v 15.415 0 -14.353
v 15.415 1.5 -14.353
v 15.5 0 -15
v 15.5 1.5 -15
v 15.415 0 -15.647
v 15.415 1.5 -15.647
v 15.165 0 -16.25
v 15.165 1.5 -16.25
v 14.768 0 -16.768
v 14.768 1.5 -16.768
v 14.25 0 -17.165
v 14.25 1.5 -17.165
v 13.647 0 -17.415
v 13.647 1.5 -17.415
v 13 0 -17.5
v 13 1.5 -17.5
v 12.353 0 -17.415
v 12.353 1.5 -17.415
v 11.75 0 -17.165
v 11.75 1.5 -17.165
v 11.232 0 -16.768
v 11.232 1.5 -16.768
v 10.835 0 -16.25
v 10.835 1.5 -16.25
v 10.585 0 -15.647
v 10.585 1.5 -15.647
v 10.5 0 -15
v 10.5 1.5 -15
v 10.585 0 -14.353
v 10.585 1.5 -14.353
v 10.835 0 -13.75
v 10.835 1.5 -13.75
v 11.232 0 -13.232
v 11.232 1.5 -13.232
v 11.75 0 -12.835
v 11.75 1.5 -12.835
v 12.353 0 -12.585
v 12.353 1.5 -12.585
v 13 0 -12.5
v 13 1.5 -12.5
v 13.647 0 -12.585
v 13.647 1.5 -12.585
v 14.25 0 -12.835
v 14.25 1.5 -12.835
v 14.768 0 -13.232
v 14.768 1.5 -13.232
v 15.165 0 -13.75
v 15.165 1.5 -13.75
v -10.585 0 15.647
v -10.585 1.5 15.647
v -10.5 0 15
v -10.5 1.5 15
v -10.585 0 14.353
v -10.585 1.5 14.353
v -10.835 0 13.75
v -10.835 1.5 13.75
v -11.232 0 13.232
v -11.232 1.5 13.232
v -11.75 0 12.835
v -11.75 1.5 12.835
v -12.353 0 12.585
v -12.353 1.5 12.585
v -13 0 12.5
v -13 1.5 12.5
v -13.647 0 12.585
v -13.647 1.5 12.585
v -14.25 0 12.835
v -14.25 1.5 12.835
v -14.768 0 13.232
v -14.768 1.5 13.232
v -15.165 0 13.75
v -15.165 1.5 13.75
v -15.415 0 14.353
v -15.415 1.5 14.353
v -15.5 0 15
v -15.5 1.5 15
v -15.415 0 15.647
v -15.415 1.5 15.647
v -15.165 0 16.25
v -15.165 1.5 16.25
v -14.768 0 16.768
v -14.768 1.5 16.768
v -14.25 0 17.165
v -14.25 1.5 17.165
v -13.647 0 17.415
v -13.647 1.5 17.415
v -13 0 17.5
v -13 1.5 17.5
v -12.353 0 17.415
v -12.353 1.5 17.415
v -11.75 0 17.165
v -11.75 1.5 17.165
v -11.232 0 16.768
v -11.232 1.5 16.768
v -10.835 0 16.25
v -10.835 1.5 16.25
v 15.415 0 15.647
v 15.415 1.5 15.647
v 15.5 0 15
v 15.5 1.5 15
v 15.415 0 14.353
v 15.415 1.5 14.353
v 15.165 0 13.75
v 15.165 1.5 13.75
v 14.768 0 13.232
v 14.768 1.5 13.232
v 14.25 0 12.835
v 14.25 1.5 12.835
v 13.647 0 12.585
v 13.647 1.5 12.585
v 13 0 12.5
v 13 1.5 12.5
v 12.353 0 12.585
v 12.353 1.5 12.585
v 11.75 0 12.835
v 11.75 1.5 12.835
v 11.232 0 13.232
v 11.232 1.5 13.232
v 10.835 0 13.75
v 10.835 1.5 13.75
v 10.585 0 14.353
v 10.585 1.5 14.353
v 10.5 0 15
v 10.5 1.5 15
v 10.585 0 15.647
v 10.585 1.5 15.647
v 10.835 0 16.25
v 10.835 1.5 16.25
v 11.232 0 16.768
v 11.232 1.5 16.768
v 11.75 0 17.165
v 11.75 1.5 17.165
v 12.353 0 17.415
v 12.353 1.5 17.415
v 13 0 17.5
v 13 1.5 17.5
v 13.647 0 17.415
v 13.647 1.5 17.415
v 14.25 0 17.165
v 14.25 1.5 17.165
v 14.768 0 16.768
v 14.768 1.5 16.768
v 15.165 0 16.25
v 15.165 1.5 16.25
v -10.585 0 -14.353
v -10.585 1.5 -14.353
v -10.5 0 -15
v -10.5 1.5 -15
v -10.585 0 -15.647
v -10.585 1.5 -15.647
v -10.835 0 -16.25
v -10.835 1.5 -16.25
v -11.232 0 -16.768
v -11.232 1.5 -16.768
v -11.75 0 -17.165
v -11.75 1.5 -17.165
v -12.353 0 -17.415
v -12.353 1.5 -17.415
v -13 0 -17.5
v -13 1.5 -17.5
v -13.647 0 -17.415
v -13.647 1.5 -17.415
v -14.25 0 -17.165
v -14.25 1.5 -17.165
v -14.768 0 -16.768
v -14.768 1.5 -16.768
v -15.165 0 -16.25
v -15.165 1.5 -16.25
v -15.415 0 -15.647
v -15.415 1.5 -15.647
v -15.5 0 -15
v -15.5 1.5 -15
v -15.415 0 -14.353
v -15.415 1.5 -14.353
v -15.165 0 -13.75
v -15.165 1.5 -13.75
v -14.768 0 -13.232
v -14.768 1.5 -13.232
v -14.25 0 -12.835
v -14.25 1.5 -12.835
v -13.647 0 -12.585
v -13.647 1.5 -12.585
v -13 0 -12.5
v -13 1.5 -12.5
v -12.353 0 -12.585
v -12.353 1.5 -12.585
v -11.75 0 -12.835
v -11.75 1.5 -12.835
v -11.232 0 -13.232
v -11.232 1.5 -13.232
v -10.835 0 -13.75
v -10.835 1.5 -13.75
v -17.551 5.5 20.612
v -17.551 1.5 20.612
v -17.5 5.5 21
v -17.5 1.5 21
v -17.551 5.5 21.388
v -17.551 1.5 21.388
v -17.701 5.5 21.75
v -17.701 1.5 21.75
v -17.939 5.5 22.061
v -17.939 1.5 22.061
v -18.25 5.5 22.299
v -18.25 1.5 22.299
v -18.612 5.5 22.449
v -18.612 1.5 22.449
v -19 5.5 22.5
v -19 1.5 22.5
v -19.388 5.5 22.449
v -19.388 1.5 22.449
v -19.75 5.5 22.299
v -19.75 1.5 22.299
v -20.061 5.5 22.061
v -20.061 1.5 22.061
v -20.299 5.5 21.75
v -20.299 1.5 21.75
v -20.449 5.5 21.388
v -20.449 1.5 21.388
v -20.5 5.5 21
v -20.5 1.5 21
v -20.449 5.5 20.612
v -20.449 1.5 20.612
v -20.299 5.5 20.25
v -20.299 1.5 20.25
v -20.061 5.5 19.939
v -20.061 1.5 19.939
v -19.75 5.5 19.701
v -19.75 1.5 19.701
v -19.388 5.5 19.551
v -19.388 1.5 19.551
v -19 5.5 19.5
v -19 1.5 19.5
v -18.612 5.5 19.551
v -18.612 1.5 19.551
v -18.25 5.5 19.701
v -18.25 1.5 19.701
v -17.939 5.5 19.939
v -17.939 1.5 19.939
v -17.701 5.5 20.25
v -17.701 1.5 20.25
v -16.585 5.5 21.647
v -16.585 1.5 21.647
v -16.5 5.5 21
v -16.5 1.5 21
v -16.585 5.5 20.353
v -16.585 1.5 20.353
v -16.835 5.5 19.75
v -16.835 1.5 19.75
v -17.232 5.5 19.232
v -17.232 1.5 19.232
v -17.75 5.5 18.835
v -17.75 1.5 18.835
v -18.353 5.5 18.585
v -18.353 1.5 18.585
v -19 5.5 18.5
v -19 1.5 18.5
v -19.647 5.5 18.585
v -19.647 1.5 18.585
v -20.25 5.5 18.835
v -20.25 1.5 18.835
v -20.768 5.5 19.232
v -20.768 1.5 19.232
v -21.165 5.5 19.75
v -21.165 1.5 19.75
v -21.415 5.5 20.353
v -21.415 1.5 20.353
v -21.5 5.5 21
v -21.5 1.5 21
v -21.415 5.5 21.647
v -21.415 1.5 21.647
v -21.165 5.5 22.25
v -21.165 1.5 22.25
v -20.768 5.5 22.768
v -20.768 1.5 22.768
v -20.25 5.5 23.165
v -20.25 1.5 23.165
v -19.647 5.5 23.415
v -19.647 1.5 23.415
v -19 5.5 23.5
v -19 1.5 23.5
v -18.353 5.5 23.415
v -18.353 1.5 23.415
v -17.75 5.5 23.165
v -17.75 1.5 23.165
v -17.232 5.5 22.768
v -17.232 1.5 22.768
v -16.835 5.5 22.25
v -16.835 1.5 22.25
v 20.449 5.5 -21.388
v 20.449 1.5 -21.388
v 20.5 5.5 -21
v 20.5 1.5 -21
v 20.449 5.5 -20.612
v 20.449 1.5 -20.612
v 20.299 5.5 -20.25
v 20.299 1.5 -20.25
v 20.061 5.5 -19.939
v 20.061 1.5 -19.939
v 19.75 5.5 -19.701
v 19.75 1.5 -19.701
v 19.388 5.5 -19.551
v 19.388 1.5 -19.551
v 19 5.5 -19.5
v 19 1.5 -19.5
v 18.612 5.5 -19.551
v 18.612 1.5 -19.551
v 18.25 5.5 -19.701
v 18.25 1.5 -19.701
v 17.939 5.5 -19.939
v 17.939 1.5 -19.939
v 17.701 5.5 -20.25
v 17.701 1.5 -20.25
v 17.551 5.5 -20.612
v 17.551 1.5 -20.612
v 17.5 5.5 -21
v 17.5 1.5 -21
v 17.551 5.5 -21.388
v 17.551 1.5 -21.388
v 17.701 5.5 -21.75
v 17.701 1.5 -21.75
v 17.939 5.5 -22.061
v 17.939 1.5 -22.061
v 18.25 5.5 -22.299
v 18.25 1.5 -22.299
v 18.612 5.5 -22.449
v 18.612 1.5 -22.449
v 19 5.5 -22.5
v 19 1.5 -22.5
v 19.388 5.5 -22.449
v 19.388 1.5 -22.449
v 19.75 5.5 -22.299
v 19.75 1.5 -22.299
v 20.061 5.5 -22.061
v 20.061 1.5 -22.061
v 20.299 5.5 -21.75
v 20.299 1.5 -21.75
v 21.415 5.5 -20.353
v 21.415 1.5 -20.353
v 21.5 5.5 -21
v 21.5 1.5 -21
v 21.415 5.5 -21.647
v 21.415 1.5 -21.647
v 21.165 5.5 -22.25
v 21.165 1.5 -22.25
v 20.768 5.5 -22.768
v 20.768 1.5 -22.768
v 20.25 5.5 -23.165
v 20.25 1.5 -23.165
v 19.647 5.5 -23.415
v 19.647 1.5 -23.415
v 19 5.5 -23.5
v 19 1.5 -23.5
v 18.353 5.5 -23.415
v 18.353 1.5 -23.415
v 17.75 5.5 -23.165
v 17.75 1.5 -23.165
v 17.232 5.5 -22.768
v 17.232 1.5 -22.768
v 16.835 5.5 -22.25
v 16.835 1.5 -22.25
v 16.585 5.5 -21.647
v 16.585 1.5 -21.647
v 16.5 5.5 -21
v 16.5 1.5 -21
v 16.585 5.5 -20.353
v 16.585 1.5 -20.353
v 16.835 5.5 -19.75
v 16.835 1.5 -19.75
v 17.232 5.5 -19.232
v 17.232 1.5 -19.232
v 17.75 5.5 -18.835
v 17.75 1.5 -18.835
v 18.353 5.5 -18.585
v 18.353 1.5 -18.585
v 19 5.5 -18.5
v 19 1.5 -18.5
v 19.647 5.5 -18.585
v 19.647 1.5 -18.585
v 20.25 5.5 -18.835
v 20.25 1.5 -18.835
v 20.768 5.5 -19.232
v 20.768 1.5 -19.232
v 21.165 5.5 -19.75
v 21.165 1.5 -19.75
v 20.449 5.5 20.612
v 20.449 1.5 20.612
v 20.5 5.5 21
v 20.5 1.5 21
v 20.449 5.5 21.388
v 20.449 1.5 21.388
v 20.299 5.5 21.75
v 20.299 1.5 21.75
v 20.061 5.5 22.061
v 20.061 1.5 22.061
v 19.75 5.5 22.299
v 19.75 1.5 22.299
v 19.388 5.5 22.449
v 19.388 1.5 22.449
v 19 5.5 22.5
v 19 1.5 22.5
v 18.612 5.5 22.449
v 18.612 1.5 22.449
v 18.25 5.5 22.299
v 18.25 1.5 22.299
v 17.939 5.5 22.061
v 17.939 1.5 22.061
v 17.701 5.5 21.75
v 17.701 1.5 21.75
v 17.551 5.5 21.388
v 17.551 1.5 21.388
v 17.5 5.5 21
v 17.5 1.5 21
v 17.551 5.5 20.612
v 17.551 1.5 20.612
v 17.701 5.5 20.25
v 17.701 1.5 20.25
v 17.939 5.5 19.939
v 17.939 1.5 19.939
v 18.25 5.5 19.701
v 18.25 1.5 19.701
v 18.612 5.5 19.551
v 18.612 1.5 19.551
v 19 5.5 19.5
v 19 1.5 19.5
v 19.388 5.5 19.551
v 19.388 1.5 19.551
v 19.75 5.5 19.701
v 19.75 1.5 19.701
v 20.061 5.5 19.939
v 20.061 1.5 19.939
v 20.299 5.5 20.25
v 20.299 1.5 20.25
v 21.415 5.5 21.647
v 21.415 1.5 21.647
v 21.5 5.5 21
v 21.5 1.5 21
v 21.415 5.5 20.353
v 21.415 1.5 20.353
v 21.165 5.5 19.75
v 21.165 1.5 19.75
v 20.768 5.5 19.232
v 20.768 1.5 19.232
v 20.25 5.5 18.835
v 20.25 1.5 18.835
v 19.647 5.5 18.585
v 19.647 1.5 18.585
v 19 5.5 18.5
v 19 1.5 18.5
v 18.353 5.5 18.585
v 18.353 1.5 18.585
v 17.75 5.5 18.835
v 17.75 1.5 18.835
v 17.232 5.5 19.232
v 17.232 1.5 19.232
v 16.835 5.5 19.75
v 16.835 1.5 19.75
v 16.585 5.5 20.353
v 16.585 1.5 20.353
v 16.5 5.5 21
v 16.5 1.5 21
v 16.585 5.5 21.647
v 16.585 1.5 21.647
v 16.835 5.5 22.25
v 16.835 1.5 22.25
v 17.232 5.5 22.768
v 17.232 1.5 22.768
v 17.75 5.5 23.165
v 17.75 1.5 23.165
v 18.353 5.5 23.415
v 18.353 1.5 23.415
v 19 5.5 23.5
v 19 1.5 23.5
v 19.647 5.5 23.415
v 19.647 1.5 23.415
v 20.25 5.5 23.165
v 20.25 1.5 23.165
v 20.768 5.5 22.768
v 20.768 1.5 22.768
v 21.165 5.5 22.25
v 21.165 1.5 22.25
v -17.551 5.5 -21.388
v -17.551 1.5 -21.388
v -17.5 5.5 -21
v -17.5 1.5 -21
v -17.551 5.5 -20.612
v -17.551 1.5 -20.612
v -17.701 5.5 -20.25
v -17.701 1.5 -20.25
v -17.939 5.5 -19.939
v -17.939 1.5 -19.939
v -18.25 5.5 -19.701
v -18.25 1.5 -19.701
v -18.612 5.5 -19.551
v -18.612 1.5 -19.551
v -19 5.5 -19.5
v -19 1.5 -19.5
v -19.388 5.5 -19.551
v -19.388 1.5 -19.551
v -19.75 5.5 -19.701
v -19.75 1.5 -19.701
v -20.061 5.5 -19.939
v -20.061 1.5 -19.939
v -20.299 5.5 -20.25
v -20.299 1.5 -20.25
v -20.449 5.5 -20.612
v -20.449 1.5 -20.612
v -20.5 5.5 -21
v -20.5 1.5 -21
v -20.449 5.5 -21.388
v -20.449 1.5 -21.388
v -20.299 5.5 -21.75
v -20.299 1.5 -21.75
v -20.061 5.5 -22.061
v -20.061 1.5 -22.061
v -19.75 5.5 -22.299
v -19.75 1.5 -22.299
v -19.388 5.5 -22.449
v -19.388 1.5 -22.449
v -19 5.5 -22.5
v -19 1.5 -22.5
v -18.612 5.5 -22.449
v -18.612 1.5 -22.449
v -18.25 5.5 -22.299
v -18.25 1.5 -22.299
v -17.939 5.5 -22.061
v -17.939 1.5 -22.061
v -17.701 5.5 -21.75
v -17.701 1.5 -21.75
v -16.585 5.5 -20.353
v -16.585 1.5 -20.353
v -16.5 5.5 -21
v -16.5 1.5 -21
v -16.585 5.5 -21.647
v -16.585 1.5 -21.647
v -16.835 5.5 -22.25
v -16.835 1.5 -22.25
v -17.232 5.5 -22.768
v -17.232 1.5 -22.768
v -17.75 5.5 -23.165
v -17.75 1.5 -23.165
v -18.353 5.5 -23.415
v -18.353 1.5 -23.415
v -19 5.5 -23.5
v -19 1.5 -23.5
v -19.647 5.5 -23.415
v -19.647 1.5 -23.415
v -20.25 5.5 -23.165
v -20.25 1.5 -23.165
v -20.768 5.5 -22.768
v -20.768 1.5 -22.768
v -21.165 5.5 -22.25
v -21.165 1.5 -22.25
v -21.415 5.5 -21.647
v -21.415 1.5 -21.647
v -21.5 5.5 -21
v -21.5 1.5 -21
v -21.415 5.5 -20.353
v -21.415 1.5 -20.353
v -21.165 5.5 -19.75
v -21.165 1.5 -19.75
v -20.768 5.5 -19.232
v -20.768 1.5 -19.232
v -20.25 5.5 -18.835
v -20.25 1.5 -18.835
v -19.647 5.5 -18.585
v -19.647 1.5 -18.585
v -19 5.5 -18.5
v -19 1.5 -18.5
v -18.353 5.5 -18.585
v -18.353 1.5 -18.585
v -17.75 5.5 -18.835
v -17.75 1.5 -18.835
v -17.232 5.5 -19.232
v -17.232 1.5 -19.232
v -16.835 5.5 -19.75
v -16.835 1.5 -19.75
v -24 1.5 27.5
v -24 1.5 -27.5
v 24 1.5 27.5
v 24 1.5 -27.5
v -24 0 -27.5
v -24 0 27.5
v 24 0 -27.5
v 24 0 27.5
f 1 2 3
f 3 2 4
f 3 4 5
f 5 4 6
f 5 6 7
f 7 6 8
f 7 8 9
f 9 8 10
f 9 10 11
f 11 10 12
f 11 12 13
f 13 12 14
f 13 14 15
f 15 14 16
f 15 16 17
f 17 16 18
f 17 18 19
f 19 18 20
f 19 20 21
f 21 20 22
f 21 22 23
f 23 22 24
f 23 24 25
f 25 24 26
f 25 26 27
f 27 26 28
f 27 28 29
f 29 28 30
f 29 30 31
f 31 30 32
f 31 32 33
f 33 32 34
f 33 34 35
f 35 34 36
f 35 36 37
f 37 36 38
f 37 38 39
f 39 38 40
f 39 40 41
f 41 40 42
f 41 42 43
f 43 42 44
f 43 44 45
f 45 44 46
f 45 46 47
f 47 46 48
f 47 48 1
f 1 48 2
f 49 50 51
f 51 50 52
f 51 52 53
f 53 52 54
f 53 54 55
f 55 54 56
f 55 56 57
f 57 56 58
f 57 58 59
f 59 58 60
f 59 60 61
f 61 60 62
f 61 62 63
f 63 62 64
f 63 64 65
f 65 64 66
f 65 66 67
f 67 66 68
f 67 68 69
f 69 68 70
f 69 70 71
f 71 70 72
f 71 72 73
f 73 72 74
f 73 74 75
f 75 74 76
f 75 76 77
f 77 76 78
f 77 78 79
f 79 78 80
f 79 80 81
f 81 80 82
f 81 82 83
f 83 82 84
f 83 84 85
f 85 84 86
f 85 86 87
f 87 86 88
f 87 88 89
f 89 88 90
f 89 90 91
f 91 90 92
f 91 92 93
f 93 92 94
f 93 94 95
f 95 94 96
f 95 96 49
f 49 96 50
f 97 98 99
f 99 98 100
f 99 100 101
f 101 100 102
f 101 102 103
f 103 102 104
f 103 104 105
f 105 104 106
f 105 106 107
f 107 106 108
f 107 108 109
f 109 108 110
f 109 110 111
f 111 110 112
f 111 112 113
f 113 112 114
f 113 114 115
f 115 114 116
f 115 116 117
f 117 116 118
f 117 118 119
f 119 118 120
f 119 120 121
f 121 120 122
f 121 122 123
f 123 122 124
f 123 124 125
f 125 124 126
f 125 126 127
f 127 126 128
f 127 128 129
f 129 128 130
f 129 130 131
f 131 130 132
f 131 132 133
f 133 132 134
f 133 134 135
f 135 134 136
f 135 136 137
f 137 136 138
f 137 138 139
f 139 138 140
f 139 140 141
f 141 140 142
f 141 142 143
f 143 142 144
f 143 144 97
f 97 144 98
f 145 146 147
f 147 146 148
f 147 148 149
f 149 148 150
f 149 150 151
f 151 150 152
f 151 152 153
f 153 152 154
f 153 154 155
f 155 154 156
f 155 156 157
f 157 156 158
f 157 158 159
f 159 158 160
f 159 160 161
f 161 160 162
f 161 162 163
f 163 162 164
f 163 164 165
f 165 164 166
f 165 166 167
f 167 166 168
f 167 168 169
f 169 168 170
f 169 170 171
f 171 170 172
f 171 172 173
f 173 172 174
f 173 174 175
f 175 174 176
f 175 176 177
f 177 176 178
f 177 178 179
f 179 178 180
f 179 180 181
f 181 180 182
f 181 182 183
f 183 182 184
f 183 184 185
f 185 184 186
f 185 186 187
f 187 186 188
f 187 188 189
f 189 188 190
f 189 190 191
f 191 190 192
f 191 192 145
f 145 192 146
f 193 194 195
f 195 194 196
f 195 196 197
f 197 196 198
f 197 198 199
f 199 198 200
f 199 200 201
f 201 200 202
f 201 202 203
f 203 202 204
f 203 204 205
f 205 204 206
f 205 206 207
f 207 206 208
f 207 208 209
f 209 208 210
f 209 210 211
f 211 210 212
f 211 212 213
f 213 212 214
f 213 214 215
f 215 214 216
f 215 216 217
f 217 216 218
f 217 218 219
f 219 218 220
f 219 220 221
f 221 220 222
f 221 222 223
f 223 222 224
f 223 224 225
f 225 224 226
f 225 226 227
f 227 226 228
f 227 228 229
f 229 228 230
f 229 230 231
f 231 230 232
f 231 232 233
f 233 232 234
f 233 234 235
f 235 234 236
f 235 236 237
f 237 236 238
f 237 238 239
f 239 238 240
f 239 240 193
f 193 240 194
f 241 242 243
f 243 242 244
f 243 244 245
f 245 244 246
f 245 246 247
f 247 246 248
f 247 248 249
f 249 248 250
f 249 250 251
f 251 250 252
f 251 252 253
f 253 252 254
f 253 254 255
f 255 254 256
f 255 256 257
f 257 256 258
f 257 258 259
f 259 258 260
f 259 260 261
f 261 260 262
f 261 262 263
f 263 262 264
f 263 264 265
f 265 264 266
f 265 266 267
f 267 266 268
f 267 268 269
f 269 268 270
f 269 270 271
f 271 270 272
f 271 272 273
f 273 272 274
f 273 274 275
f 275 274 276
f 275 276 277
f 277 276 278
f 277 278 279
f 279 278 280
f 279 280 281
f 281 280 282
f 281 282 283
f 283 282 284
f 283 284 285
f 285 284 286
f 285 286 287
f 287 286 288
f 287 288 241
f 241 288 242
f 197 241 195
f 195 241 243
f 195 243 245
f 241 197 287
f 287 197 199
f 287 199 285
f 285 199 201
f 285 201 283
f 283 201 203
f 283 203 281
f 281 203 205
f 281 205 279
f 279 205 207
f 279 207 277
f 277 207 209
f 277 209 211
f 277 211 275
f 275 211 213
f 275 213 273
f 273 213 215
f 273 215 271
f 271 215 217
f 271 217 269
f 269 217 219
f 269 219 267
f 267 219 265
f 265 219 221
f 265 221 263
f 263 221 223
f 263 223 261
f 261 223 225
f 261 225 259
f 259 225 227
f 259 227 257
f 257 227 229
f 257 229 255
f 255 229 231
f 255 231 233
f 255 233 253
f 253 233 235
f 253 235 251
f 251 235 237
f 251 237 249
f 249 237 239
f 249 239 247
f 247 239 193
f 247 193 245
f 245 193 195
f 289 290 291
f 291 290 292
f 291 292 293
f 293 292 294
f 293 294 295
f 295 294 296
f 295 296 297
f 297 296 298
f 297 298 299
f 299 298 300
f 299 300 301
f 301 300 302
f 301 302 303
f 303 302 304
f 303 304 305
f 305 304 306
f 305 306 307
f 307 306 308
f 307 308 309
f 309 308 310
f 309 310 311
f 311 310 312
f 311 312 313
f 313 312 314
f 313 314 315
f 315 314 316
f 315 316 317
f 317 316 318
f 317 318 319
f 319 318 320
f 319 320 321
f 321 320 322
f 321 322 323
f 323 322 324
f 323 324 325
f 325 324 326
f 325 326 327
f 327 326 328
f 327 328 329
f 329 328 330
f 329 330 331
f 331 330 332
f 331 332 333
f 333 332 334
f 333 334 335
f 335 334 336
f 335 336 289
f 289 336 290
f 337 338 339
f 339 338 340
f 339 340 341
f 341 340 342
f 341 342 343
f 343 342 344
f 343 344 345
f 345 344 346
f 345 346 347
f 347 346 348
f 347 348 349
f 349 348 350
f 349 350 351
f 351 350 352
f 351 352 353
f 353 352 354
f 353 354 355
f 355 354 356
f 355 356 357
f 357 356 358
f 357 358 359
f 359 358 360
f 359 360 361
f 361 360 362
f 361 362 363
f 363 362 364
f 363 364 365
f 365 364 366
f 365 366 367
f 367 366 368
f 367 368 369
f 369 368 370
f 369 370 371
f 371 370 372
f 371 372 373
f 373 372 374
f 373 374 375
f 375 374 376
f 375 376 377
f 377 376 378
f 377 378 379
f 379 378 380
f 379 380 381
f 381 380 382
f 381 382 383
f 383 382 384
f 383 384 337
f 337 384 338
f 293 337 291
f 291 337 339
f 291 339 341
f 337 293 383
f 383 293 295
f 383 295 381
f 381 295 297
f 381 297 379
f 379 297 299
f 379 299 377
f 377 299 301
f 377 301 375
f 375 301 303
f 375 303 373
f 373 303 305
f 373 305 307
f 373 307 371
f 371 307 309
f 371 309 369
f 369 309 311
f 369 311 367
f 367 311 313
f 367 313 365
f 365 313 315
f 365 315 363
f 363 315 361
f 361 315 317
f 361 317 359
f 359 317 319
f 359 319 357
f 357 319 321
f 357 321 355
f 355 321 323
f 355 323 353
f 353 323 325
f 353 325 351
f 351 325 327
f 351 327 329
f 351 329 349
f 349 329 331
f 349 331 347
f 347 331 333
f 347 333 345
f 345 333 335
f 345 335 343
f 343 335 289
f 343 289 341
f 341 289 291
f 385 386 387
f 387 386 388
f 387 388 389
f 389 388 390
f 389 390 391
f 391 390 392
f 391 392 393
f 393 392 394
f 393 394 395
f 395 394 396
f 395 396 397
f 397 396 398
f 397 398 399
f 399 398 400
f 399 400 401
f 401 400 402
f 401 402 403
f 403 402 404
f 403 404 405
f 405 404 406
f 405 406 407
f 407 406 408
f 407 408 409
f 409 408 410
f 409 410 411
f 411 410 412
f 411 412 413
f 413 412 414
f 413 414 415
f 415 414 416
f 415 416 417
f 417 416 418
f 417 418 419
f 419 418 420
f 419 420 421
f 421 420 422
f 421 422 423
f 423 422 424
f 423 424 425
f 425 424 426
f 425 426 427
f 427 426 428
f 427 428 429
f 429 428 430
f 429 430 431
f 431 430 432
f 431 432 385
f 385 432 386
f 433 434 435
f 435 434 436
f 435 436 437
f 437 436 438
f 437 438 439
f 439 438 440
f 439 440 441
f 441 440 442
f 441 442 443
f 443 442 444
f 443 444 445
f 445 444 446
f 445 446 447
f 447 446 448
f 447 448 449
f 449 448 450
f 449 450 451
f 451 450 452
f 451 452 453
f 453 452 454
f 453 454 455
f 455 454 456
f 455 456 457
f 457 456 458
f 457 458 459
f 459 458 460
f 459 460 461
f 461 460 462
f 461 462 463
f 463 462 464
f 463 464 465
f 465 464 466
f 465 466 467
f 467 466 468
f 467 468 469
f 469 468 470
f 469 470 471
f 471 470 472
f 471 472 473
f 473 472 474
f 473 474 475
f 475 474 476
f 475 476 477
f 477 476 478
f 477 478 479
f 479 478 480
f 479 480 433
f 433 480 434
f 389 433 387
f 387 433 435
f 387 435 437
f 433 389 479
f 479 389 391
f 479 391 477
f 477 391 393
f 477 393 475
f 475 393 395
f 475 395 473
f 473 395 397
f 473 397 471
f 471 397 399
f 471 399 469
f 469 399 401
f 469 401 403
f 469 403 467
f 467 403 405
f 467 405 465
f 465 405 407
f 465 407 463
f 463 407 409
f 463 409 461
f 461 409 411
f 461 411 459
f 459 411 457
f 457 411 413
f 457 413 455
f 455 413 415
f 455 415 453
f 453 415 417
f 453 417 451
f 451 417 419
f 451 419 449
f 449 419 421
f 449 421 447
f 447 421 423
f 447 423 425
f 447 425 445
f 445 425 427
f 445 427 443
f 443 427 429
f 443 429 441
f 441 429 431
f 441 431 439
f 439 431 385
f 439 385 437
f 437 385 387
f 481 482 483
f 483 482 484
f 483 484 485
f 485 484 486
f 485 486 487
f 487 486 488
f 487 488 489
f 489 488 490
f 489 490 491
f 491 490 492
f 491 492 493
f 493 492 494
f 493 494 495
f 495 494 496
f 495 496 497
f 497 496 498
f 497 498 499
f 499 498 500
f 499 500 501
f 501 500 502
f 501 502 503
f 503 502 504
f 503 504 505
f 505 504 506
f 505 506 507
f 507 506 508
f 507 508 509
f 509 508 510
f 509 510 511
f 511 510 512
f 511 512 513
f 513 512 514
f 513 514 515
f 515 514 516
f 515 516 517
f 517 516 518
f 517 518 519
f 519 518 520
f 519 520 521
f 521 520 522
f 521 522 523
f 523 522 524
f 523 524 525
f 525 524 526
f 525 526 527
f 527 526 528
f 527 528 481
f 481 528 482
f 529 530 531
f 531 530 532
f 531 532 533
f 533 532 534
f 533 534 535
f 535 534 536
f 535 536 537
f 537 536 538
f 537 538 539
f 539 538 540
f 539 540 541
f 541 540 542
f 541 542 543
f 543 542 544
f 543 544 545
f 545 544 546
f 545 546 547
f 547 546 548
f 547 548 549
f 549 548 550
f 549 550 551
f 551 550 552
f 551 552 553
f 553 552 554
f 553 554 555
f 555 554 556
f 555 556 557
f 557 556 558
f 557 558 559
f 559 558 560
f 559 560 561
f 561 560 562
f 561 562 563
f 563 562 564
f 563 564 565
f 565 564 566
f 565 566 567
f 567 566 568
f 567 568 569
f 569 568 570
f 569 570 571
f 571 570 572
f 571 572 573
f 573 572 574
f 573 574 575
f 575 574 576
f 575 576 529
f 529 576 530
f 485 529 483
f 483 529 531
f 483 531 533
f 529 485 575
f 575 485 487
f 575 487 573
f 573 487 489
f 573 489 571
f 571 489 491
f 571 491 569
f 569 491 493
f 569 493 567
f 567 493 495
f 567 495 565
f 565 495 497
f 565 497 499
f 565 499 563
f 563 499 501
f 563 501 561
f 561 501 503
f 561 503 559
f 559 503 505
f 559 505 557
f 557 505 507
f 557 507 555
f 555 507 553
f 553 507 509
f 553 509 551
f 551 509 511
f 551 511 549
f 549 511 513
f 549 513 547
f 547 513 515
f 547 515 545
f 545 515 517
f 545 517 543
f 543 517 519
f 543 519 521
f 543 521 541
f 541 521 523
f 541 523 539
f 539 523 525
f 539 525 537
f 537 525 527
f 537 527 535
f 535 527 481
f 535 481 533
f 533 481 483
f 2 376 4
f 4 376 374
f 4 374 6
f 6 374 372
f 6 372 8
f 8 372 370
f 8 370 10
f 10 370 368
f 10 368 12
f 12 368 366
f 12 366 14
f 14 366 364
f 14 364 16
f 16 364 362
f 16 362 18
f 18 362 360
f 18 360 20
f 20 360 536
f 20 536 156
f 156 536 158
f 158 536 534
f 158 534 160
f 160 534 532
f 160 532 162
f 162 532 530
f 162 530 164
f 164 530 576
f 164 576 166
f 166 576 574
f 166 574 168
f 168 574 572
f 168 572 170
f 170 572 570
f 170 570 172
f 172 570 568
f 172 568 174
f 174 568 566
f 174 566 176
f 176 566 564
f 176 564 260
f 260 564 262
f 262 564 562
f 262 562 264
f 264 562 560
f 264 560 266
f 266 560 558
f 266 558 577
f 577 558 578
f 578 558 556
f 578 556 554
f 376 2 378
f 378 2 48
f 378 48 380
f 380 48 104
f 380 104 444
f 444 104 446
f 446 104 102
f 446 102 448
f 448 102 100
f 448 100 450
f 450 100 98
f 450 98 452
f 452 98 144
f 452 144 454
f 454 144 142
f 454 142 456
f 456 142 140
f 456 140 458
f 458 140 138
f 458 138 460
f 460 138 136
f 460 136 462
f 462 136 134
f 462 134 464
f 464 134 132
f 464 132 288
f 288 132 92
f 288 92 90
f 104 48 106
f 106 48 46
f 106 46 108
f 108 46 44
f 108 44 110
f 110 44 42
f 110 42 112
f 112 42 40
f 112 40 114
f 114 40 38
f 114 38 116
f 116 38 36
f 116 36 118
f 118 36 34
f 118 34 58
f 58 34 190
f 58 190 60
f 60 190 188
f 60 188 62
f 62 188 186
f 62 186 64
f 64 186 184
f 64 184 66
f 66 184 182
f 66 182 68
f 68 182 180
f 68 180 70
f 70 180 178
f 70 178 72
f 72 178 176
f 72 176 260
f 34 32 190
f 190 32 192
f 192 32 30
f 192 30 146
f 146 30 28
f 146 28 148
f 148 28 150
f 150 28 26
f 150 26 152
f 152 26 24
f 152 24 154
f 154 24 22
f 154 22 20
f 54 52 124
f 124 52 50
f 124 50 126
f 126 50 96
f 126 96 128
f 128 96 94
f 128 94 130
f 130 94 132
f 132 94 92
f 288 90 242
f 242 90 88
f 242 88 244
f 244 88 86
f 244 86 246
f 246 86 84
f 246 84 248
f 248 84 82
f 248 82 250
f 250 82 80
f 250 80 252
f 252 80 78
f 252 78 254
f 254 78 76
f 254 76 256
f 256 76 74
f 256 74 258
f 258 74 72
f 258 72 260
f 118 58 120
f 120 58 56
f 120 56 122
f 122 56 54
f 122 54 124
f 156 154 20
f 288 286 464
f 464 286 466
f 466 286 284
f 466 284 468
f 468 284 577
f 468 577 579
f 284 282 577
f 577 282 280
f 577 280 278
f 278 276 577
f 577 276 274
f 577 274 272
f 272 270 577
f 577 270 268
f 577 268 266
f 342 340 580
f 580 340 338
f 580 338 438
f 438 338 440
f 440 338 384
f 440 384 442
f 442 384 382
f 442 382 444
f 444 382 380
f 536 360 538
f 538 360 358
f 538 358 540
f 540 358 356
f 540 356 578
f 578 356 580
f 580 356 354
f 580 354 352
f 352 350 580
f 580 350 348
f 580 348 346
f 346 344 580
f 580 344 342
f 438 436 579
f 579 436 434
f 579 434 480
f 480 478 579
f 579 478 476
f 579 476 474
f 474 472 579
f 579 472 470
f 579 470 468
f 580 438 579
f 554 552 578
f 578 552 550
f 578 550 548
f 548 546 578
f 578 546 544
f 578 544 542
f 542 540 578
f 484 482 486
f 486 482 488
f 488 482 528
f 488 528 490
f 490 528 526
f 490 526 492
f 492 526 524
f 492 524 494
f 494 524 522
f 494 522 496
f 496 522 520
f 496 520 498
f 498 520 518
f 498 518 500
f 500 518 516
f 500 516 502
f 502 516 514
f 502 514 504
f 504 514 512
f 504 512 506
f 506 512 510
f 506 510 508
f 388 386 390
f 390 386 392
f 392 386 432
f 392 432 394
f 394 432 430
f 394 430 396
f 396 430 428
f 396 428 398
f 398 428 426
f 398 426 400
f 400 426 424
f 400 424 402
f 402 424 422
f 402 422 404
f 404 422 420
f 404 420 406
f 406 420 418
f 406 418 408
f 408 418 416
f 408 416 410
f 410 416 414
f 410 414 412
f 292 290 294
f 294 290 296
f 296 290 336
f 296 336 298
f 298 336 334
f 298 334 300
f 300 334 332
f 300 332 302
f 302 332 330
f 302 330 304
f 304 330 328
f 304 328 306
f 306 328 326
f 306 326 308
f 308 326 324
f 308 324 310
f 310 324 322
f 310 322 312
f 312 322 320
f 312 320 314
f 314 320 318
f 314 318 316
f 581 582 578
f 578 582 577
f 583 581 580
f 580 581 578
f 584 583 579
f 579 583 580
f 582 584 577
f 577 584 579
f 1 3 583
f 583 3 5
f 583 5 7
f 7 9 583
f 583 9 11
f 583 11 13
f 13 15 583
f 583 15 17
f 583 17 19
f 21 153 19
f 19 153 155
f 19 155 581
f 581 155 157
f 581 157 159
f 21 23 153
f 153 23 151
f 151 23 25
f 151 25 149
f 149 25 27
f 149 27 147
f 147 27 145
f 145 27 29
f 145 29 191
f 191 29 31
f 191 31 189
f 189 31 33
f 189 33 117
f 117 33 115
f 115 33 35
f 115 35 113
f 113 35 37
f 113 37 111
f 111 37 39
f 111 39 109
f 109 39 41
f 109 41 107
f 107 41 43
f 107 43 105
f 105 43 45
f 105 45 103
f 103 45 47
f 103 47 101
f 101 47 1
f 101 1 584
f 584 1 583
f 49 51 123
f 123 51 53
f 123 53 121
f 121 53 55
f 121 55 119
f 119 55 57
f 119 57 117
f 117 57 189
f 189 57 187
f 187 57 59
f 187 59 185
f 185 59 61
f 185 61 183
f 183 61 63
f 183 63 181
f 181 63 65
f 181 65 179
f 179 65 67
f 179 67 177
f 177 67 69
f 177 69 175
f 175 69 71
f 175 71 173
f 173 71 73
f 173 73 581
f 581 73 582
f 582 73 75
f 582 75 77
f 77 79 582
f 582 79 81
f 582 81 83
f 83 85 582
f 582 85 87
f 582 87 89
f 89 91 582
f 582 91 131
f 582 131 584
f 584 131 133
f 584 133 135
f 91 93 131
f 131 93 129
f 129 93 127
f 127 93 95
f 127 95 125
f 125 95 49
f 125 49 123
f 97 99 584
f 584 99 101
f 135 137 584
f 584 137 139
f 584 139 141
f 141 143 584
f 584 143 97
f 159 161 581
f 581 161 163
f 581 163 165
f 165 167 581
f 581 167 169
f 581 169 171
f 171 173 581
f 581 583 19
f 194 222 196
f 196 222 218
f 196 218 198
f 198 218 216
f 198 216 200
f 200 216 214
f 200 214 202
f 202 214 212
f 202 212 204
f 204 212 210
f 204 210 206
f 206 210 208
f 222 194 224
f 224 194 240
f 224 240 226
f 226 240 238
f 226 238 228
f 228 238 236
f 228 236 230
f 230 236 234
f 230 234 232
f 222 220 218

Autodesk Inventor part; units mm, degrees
ref_plane "YZ Plane" through (0, 0, 0) normal (1, 0, 0) x (0, 1, 0)
ref_plane "XZ Plane" through (0, 0, 0) normal (0, 1, 0) x (-1, 0, 0)
ref_plane "XY Plane" through (0, 0, 0) normal (0, 0, 1) x (1, 0, 0)
sketch "Sketch1" plane through (0, 0, 0) normal (0, 1, 0) x (-1, 0, 0)
  line L0 (-24, 27.5) -> (24, 27.5)
  line L1 (24, 27.5) -> (24, -27.5)
  line L2 (24, -27.5) -> (-24, -27.5)
  line L3 (-24, -27.5) -> (-24, 27.5)
  dimension "d13" = 48
  dimension "d14" = 55
extrude "Extrusion1" add sketch "Sketch1" along normal blind 1.5
sketch "Sketch2" plane through (0, 1.5, 0) normal (0, 1, 0) x (1, 0, 0)
  circle A0 centre (19, 21) radius 2.5
  circle A1 centre (19, -21) radius 2.5
  circle A2 centre (-19, -21) radius 2.5
  circle A3 centre (-19, 21) radius 2.5
  circle A4 centre (-13, -15) radius 2.5
  circle A5 centre (13, -15) radius 2.5
  circle A6 centre (13, 15) radius 2.5
  circle A7 centre (-13, 15) radius 2.5
  circle A8 centre (19, -21) radius 1.5
  circle A9 centre (19, 21) radius 1.5
  circle A10 centre (-19, 21) radius 1.5
  circle A11 centre (-19, -21) radius 1.5
  dimension "d47" = 3
  dimension "d48" = 3
  dimension "d50" = 3
extrude "Extrusion2" add sketch "Sketch2" along normal blind 4 contours A0 | A1 | A2 | A3
sketch "Sketch3" plane through (0, 1.5, 0) normal (0, 1, 0) x (1, 0, 0)
  circle A0 centre (-13, -15) radius 2.5
  circle A1 centre (13, -15) radius 2.5
  circle A2 centre (13, 15) radius 2.5
  circle A3 centre (-13, 15) radius 2.5
  point P0 (0, 0)
extrude "Extrusion3" cut sketch "Sketch3" against normal through all
properties part number "Box2_Buttom"
